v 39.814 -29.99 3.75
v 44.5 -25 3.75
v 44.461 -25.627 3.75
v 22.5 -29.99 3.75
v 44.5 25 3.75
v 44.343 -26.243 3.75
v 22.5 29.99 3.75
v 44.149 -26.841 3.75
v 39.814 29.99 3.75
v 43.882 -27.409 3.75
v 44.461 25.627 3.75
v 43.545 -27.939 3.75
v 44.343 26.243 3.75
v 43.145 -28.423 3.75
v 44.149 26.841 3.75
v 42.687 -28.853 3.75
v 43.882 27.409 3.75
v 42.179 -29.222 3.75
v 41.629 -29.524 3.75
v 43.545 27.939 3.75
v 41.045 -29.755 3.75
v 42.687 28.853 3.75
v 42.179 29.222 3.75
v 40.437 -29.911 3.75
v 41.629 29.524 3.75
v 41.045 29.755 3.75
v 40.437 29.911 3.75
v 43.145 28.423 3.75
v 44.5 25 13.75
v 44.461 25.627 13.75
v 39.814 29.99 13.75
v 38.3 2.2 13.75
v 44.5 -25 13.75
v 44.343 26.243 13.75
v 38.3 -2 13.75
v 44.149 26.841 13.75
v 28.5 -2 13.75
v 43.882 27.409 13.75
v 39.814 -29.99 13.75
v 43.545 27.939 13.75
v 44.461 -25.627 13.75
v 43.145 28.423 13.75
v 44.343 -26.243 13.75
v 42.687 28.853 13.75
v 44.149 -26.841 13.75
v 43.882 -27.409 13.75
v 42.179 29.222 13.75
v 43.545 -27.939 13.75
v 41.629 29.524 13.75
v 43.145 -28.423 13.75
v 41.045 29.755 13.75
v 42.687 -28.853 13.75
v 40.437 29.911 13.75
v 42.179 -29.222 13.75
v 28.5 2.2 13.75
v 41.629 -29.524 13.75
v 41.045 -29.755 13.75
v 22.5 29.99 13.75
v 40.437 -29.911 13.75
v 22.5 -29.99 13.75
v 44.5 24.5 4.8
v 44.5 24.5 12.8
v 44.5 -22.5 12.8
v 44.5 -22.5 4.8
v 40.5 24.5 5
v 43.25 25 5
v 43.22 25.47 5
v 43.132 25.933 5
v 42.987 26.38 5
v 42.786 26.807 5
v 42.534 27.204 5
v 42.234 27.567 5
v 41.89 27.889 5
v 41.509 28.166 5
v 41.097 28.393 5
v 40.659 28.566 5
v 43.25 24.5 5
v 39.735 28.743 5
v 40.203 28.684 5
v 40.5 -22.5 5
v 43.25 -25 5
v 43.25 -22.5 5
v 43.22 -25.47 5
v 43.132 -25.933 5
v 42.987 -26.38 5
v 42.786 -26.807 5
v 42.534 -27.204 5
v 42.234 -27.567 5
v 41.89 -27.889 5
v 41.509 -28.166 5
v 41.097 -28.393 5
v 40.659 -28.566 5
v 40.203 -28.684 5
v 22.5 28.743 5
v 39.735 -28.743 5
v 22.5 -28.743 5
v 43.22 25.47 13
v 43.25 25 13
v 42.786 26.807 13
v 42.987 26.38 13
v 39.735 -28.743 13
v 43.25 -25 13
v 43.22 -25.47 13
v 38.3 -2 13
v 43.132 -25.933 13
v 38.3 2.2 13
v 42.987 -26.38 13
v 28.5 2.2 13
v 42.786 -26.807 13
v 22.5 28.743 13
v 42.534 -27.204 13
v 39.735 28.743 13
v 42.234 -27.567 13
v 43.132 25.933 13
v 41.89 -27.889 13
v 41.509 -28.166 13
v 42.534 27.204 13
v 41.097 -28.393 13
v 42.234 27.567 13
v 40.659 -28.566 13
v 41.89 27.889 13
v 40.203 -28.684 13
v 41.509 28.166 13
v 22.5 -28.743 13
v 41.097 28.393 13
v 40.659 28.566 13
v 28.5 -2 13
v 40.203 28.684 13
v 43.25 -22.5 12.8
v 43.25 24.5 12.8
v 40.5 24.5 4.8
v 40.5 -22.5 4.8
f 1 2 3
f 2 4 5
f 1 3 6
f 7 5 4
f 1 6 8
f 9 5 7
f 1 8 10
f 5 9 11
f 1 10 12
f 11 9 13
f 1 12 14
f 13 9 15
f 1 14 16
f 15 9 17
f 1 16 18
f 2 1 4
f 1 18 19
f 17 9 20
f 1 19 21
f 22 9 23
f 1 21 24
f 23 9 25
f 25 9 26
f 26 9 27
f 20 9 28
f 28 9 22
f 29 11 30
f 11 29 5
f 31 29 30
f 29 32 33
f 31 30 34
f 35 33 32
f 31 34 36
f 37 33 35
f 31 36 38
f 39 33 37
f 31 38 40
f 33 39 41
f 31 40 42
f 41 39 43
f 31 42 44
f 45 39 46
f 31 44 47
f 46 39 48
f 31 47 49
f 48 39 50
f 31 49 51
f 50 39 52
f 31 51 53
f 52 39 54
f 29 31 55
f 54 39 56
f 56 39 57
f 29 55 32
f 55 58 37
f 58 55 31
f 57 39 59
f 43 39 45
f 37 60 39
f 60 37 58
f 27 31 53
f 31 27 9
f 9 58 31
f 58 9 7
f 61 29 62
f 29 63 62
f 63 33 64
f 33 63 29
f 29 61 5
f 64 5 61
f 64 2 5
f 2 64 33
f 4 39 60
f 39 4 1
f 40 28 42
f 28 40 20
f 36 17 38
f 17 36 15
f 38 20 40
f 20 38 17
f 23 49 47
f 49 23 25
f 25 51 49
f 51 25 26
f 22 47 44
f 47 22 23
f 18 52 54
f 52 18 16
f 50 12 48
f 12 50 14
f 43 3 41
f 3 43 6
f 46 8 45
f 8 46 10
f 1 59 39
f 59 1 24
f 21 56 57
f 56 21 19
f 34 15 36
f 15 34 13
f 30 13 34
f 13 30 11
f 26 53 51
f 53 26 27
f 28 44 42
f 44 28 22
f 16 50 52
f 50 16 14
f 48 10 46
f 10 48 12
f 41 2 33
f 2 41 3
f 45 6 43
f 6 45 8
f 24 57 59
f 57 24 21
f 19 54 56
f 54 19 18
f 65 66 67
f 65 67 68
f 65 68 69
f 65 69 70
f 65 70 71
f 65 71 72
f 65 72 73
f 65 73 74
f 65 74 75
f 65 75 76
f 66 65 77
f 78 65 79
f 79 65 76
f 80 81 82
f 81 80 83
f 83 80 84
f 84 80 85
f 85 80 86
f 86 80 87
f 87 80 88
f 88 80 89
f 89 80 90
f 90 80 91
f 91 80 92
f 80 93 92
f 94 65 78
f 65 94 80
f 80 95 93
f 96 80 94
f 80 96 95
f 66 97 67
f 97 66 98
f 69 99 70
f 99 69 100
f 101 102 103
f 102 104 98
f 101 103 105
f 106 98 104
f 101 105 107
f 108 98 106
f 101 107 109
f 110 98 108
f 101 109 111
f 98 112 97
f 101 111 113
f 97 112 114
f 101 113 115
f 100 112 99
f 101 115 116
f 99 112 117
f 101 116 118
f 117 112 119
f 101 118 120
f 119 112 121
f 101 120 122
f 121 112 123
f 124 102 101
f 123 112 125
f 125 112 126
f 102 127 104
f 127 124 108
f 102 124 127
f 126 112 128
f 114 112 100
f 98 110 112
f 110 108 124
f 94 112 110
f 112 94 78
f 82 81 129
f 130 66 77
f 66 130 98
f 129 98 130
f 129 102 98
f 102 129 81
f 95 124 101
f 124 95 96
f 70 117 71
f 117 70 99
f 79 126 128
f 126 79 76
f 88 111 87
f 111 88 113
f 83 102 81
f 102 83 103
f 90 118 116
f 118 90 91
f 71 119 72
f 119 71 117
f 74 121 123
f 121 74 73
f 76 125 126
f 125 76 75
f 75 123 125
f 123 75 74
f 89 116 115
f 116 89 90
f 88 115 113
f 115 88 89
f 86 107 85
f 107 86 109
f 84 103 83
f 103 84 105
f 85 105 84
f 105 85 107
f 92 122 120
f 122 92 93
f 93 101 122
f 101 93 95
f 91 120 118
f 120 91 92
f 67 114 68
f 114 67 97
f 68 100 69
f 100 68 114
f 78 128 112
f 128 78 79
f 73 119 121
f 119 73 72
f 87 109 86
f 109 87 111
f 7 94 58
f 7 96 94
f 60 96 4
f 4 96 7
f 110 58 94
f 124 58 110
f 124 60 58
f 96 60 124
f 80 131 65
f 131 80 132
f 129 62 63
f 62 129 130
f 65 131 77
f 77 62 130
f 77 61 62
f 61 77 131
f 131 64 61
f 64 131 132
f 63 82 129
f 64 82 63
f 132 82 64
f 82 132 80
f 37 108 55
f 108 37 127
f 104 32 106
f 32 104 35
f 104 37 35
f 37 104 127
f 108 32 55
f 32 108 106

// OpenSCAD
//===========================================================================
//
// PiPro Pi Case designed to mimic the 2019 Mac Pro look.
// derived from PrusaPi Pi case for Prusa MK3 https: 
//
// This part was originally designed 24 November 2017 by Joe McKeown. 
// and updated 22 June 2019.
// It's available under the terms of the Creative Commons CC-BY license 
// (https://creativecommons.org/licenses/by/3.0/).
// 
// History:
// V1.0 24 NOV 2017 First version
// v2.0 22 JUN 2019 Revised to look like Mac Pro and Not attach to Prusa
//===========================================================================

//Adapted by Jordan Knight to be a external ssd shelf for the Pi 4. 
//Now contains skadis shelf hole (for https://www.thingiverse.com/thing:2853261 Skadis_Shelf_Hook


sqrt3=sqrt(3);

cheese_r=5;//4;


epsilon=0.01;
baseGap=3.25;
PCBThick=1.3;
baseThick=1.25;
totalHeight=21.5;//20.2;
baseHeight=15;
bracketOffset=65; 

PCBBase=baseGap+PCBThick;

BoardSize=[85,56];



module outline(r=3){   
   hull()
   for (point=[[3,3],[3,53],[82,3],[82,53]]){
     translate(point) circle(r, $fn=50);
   }
 }



module USBSlotB(centerY){
  //height is 16;
  JackWidth=47;
  translate([BoardSize[0]-2, centerY-(JackWidth/2), PCBBase-3.5])
  cube([10, JackWidth, 8]);
}


module bottomShell() {
  
  difference(){
    linear_extrude(baseHeight -5) outline(5);
    translate([0,0,baseThick]) 
      linear_extrude(baseHeight - 7) outline(3.75); 
    //translate([0,0,-1]) 
     // linear_extrude(baseHeight + 10) outline(3.75);
    translate([-15,-10,-3])
      cube([80, 80, 40]);
 
    
    USBSlotB(29);
    
    //9.8 x 4.2
    translate([71,26,6])
    cube([9.8, 4.2, 5]);
 
  }
  
}

module base() {
    $fn=10;

    difference(){
        union(){           
            translate([0,0, cheese_r-1.25 ])
                union(){
                    bottomShell();           
                }
        }
       
    }
    
}

translate([-BoardSize[0]/2,-BoardSize[1]/2,0])
base();
